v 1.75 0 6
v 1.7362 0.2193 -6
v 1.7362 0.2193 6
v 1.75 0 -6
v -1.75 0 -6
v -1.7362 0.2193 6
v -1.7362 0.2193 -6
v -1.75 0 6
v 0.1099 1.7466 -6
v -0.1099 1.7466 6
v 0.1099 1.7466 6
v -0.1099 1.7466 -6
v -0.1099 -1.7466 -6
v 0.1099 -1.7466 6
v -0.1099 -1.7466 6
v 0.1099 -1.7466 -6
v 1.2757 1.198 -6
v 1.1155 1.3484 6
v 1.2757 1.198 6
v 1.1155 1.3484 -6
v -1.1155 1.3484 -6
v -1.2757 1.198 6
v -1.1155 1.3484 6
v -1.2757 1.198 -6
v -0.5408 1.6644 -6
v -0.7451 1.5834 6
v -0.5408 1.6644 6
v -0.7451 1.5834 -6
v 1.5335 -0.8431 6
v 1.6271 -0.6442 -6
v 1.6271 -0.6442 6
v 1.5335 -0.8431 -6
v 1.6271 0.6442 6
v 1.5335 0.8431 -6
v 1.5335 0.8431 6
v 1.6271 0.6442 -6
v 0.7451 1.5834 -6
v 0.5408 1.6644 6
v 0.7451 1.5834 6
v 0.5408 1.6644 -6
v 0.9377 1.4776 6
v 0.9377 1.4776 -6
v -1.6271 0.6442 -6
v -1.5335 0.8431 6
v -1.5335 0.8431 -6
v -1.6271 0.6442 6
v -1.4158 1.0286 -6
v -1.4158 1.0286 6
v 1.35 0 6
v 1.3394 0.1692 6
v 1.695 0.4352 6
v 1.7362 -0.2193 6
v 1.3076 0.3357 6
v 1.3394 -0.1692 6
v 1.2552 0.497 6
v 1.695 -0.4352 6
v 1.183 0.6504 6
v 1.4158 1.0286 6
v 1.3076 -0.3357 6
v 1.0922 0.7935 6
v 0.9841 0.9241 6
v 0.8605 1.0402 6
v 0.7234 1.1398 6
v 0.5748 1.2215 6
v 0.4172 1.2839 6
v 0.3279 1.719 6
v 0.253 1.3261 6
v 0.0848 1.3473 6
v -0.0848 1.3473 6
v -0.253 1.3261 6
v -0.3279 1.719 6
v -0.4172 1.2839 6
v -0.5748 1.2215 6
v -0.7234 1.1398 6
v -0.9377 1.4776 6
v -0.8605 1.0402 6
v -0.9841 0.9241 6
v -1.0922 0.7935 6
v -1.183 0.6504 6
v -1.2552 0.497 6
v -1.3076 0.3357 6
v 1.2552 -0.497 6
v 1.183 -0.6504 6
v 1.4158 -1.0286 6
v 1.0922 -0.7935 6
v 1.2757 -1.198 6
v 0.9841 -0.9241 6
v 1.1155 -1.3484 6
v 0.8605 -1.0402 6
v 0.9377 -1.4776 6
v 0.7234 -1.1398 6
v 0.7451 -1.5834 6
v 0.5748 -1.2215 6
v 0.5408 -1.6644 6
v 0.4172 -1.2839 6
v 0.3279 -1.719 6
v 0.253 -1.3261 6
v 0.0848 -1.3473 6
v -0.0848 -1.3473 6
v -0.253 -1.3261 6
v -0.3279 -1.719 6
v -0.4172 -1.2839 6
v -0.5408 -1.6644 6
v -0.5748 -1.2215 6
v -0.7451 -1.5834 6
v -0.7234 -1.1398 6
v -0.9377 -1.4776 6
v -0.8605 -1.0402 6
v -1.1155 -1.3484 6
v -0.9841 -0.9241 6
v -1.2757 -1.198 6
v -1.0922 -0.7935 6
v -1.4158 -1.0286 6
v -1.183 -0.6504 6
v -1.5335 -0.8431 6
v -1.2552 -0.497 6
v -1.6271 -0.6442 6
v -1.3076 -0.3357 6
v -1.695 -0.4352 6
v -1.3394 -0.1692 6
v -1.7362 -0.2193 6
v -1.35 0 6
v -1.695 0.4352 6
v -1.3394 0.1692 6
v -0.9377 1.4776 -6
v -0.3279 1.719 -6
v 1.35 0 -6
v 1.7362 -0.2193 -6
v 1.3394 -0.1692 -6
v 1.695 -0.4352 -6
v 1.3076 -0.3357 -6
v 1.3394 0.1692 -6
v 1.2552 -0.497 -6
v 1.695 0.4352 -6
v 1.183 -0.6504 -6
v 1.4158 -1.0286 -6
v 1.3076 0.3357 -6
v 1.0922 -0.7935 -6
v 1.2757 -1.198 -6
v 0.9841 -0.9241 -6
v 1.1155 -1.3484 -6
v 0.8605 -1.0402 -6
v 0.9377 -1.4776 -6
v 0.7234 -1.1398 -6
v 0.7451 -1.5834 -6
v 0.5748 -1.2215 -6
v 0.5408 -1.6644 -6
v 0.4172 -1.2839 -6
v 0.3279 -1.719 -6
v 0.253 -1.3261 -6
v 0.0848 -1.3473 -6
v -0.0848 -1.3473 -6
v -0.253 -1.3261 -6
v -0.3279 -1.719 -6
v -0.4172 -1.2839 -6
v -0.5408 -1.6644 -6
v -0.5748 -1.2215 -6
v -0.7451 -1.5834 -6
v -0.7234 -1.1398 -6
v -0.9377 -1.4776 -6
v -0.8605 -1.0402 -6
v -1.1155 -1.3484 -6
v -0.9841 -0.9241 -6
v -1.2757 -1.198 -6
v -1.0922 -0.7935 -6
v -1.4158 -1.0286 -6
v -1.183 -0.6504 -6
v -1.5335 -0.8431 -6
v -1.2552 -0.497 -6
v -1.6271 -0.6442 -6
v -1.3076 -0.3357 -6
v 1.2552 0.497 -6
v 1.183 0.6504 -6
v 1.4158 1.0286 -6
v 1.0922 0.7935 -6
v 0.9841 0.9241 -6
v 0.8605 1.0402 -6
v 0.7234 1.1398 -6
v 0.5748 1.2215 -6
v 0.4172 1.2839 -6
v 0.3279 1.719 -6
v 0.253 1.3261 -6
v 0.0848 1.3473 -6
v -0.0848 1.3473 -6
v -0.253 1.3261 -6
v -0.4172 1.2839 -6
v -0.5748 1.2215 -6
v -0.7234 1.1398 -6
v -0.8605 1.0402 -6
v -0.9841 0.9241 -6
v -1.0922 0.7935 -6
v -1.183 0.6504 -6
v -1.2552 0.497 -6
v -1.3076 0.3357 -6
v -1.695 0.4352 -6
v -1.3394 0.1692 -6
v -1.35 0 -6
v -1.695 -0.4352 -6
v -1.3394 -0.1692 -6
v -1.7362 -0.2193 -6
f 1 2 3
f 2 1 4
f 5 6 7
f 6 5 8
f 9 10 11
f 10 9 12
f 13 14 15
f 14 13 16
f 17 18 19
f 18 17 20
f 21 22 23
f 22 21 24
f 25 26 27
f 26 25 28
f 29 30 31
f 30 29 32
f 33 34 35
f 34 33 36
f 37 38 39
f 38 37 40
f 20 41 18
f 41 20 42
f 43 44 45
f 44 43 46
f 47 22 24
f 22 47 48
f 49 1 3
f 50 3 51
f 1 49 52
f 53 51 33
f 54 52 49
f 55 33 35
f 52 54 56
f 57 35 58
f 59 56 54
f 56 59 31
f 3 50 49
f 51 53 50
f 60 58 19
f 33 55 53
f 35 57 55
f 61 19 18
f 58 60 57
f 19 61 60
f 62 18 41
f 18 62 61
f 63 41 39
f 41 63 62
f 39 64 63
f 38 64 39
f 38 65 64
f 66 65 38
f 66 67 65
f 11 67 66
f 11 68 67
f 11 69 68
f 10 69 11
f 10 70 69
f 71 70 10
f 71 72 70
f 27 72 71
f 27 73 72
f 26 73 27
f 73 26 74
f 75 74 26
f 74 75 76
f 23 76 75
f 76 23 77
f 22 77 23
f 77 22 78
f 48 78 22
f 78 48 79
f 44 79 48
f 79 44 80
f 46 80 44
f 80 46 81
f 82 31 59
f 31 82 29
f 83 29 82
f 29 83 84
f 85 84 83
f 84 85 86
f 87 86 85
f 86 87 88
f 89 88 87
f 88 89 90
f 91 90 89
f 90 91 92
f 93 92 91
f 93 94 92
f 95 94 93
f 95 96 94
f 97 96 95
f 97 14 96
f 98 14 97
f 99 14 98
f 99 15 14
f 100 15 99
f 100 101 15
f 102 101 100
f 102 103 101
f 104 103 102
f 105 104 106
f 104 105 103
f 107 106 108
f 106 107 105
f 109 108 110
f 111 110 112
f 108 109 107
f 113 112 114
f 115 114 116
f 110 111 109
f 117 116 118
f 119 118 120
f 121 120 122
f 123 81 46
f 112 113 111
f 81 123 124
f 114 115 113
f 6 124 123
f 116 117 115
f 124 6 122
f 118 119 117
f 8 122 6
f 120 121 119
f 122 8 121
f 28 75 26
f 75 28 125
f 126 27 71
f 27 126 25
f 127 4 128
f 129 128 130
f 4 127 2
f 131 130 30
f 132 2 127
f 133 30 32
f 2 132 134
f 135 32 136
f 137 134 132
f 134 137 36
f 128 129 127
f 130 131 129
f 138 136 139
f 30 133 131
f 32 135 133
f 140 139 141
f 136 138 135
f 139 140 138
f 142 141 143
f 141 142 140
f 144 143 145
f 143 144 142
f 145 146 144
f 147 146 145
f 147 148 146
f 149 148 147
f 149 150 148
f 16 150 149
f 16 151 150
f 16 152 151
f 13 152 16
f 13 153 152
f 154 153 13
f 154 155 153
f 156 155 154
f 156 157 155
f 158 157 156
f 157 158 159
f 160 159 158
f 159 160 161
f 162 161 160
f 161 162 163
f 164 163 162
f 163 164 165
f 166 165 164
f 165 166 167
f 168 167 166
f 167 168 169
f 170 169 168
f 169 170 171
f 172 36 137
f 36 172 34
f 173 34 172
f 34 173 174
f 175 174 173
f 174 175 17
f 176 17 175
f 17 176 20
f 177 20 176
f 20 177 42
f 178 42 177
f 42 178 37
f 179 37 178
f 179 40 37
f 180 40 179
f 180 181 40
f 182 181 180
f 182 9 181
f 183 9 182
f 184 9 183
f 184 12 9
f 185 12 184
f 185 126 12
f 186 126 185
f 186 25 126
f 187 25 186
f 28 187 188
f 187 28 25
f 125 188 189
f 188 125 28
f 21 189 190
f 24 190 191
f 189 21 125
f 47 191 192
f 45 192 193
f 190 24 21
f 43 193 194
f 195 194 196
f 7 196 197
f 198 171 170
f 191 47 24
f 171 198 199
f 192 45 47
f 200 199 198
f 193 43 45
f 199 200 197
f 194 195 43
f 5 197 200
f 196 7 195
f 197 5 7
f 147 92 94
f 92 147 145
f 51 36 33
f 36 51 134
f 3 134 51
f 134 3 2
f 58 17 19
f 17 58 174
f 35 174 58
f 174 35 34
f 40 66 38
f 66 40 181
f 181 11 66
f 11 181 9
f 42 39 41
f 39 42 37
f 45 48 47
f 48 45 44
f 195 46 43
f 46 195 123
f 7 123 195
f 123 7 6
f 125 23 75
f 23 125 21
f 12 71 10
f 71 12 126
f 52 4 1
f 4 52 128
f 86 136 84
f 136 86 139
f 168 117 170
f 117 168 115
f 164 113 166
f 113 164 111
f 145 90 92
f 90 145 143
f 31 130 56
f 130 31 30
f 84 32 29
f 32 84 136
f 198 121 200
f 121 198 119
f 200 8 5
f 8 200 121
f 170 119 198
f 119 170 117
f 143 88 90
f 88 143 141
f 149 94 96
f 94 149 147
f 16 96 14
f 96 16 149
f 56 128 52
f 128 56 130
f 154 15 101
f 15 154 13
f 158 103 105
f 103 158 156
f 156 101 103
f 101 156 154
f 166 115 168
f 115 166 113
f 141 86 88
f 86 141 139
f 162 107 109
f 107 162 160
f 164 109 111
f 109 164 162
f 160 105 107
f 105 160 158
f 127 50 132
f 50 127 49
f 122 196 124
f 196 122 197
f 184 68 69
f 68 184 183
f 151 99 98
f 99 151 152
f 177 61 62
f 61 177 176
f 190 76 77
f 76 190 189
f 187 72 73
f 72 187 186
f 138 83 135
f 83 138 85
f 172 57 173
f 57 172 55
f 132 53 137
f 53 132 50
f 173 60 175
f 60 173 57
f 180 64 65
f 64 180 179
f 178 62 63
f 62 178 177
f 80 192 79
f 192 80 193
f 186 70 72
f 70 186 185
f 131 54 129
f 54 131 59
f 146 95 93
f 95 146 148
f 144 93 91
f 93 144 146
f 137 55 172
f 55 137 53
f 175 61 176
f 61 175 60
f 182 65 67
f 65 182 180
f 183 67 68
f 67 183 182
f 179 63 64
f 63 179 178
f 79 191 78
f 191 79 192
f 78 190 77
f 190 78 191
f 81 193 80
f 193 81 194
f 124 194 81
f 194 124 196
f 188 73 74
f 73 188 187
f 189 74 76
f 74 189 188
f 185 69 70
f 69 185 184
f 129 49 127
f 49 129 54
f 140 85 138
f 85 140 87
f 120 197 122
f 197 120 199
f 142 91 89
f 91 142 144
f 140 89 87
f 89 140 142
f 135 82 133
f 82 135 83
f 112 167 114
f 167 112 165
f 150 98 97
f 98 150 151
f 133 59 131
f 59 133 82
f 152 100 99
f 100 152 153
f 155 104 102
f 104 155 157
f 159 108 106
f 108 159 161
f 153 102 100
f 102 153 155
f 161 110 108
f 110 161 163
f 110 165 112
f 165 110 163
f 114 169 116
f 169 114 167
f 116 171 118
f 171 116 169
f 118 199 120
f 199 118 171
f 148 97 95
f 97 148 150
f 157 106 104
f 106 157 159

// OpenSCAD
$fn = 50;


difference() {
	union() {
		translate(v = [0, 0, -6.0000000000]) {
			cylinder(h = 12, r = 1.7500000000);
		}
	}
	union() {
		translate(v = [0, 0, -100.0000000000]) {
			cylinder(h = 200, r = 1.3500000000);
		}
	}
}
